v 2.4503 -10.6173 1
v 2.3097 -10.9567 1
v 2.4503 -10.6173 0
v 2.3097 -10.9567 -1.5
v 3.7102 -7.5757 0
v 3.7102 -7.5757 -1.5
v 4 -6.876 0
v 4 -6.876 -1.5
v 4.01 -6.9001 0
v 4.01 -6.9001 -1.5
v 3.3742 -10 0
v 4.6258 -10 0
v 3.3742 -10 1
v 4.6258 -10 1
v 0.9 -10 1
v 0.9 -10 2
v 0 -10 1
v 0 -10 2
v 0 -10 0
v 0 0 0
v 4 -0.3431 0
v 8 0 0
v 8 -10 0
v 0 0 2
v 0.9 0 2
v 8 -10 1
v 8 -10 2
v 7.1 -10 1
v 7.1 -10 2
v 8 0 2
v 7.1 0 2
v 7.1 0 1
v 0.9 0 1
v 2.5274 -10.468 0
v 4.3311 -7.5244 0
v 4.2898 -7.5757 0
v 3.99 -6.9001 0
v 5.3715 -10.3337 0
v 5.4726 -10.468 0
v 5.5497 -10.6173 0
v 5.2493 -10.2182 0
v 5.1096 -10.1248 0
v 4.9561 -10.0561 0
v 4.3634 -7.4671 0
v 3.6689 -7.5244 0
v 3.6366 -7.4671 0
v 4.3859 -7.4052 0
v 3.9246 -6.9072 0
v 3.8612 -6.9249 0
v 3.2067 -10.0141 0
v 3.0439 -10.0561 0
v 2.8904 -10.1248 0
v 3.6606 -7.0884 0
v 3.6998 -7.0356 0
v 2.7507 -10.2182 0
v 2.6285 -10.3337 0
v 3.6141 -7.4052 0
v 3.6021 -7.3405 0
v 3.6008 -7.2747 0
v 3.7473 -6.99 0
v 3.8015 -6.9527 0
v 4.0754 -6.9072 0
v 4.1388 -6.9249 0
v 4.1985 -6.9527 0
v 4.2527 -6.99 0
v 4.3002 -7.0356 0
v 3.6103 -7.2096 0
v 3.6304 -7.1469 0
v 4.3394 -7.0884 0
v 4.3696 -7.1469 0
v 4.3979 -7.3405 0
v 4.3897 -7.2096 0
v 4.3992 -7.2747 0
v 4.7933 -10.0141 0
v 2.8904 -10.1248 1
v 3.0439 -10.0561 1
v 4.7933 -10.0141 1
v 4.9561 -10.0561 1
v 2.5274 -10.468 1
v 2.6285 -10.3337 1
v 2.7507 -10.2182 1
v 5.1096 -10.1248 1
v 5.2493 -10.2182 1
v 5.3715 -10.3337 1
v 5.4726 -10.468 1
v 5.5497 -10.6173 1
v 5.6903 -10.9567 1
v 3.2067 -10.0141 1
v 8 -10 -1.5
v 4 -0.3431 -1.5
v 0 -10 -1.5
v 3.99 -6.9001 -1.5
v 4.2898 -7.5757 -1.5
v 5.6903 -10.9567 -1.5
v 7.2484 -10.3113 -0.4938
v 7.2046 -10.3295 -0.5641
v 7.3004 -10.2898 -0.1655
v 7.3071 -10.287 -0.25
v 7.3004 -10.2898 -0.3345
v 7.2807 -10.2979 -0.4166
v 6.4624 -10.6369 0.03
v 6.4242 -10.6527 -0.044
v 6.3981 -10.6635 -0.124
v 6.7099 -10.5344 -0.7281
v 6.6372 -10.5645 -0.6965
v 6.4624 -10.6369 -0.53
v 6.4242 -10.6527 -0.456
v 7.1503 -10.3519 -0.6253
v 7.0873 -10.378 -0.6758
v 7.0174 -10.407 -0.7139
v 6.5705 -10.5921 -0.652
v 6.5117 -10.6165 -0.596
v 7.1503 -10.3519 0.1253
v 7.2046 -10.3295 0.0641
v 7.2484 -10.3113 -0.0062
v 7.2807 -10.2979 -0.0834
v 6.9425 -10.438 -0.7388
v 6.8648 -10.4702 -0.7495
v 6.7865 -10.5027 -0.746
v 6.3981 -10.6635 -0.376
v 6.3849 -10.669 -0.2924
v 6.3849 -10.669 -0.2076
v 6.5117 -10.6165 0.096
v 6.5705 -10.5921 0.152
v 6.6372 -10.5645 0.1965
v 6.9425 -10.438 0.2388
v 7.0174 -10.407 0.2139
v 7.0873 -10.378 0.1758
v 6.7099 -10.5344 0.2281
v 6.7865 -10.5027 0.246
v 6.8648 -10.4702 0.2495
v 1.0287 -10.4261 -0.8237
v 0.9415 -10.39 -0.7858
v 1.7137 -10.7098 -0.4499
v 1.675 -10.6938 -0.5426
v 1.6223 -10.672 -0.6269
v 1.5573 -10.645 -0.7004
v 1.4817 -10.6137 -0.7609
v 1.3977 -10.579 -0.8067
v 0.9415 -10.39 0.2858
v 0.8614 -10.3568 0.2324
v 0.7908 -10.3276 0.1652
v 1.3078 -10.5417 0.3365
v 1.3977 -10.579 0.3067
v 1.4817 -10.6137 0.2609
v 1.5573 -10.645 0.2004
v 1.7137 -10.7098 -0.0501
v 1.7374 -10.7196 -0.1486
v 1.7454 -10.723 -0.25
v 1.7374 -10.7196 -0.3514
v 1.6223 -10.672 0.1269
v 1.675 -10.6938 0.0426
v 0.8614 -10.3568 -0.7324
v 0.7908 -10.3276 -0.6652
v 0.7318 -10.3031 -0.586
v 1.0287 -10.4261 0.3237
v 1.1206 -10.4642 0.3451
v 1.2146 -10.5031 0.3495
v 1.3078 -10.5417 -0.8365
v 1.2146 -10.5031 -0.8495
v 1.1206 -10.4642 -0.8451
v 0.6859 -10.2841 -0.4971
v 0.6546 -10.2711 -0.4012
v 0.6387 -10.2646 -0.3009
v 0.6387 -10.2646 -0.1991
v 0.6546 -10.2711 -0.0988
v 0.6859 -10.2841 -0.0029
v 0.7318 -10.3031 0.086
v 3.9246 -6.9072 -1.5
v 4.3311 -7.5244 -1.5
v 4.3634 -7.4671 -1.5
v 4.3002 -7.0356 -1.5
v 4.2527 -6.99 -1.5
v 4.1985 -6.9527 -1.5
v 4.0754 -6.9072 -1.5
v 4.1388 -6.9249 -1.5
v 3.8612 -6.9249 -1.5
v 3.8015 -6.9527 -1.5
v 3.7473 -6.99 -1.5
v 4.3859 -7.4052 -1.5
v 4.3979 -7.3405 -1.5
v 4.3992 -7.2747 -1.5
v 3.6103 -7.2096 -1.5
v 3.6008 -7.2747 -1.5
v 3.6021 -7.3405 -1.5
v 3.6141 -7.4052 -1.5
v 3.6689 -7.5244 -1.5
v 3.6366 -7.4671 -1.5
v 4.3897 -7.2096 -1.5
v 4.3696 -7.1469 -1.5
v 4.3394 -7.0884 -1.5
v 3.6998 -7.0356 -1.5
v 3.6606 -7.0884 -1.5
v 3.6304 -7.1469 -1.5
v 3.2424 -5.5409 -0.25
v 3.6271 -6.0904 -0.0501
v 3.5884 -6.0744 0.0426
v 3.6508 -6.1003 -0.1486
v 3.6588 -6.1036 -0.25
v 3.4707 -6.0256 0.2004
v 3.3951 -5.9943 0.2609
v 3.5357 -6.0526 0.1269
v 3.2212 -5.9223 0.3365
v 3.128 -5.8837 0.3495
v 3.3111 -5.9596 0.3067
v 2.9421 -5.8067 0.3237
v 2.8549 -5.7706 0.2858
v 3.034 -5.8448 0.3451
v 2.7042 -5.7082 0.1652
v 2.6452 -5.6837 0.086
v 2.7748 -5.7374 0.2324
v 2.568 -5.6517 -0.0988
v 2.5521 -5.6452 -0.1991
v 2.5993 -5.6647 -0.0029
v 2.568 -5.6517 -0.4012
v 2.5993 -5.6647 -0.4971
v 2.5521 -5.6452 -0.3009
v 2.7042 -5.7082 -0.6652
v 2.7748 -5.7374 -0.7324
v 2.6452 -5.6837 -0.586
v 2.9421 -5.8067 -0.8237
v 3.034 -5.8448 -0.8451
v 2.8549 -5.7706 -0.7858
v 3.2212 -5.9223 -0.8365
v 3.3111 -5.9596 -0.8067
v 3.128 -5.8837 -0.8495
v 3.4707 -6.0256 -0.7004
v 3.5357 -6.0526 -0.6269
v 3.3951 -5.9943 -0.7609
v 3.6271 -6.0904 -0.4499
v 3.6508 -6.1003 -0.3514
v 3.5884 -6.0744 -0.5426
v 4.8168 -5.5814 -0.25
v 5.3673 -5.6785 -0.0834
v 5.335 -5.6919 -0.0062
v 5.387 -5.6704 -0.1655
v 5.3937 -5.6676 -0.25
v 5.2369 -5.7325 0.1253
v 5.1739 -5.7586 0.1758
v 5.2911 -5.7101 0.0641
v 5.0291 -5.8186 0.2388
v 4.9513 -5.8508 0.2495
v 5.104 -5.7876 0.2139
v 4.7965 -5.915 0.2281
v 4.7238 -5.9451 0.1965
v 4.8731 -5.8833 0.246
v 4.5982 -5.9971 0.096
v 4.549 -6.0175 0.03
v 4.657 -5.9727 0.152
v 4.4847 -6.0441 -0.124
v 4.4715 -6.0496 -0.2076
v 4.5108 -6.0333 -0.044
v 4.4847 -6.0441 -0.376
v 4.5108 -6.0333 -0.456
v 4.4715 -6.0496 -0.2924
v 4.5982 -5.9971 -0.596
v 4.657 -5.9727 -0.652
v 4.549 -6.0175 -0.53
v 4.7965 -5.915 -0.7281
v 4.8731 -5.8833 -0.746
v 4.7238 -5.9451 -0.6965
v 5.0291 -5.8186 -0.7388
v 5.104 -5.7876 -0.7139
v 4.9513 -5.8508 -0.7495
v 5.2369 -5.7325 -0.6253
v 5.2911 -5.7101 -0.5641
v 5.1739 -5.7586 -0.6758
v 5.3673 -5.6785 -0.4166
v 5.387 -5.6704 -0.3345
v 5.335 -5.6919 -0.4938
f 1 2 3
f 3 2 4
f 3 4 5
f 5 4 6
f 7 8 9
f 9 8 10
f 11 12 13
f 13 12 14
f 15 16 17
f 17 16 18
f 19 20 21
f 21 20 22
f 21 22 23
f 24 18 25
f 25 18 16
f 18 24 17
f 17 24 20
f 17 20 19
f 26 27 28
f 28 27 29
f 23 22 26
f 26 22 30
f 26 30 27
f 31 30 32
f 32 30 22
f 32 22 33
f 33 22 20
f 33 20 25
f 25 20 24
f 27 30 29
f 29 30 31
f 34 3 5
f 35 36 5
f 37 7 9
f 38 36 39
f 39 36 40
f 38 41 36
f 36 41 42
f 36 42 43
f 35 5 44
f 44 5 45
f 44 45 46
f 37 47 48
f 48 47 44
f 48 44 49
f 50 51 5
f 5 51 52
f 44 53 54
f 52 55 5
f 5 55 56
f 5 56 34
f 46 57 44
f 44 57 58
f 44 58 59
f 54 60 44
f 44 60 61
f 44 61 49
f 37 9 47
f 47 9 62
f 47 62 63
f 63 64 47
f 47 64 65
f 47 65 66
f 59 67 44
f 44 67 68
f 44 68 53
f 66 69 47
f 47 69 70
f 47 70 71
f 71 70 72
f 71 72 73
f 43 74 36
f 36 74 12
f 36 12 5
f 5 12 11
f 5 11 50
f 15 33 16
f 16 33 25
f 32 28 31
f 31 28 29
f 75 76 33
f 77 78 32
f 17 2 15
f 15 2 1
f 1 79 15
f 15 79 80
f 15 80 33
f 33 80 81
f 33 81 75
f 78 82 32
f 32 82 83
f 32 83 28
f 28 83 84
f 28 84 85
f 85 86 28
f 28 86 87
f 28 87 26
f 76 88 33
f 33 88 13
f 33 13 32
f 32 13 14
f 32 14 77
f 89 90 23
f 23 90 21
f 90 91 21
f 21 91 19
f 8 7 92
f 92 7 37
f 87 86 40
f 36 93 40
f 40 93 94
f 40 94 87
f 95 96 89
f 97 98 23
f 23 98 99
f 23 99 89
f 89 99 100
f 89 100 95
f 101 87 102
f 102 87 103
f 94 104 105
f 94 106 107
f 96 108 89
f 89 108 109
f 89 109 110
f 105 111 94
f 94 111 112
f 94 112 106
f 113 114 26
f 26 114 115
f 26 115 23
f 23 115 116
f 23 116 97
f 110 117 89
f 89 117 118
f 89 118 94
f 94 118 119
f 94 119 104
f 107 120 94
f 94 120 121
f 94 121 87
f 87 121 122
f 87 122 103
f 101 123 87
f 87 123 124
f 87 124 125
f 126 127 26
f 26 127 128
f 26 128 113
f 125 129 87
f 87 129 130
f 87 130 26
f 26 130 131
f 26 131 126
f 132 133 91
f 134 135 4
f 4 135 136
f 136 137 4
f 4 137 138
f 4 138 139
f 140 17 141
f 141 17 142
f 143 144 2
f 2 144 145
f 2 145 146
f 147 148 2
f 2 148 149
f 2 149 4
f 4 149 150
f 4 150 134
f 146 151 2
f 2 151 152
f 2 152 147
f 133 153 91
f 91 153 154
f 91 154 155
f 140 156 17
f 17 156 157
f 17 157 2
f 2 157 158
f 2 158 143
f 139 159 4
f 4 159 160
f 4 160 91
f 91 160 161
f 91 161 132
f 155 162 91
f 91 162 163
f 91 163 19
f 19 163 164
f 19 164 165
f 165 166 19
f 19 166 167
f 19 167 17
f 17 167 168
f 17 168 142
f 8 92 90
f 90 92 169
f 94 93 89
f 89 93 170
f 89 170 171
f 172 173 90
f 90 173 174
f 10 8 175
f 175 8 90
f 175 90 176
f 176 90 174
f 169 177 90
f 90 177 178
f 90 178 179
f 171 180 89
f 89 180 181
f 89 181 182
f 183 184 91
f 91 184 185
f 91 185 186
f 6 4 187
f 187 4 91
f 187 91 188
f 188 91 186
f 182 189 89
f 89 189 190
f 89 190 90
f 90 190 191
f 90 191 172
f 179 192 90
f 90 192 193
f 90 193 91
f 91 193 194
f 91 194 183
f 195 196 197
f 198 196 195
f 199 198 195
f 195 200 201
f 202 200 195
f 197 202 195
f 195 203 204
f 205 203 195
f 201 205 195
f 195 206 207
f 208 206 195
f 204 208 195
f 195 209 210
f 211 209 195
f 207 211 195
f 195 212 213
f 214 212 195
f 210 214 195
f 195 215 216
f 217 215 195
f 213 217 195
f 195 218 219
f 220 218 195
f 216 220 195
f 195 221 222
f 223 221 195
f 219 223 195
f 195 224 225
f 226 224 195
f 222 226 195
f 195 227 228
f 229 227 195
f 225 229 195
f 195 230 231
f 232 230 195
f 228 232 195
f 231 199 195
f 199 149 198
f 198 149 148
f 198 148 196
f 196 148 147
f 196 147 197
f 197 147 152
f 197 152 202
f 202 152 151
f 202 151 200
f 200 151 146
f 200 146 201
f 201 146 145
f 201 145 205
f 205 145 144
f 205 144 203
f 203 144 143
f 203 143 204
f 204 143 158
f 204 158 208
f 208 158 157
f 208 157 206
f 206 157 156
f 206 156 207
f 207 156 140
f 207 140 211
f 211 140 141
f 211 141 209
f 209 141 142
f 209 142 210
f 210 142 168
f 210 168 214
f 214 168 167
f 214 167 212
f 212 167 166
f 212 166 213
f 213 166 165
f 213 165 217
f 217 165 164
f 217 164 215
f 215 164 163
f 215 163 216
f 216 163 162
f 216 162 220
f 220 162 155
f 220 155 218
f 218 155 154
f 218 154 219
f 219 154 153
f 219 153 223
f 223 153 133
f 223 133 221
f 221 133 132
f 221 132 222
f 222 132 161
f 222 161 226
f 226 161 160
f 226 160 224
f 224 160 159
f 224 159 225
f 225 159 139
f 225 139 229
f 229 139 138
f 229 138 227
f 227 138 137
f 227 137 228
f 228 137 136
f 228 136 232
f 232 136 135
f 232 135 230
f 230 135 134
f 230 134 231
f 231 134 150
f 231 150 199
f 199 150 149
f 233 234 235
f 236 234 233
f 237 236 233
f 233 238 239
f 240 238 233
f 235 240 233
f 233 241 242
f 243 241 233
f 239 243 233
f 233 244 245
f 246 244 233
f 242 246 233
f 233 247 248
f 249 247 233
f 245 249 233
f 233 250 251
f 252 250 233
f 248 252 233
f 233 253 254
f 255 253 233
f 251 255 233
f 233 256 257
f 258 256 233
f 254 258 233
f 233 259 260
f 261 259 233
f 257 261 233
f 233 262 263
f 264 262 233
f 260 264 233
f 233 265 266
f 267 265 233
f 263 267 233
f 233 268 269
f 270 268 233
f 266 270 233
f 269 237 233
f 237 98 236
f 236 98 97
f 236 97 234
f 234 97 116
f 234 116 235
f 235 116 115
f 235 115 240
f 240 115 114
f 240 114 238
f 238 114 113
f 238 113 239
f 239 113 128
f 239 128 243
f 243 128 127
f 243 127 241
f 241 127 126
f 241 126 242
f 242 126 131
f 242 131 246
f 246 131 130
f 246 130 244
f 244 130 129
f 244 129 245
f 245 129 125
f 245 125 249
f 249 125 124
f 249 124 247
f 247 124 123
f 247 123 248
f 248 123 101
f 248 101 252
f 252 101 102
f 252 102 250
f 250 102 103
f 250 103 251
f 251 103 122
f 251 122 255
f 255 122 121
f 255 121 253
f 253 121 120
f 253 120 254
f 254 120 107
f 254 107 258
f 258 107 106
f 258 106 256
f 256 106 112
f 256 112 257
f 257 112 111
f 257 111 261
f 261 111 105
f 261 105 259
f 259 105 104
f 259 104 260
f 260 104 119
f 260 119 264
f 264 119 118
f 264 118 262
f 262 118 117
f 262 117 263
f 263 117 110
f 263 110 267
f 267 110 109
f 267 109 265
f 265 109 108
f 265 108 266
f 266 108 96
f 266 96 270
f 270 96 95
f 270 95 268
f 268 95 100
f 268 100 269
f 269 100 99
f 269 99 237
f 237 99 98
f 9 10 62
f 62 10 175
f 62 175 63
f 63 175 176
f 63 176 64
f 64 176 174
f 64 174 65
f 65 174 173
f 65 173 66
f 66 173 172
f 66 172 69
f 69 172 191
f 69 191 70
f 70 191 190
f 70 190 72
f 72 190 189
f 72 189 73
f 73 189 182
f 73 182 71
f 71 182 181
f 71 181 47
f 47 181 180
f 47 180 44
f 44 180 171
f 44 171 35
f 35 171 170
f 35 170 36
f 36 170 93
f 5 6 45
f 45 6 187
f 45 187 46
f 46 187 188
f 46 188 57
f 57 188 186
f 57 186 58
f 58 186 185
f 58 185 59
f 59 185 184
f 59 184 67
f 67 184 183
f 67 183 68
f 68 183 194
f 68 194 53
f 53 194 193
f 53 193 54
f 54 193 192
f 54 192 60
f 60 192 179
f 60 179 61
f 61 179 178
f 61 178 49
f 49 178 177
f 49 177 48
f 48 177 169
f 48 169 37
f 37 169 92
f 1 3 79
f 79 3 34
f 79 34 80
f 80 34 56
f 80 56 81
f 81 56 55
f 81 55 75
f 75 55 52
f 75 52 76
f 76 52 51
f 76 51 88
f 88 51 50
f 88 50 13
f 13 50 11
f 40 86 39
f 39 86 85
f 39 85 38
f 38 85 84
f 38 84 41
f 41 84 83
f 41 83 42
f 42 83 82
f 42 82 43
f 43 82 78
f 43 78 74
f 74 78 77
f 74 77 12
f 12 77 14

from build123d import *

# Parameters (mm, degrees)
SKETCH1_W                = 8
SKETCH1_H                = 10
BOSS_EXTRUDE1_DEPTH      = 2
SKETCH2_W                = 6.2
SKETCH2_H                = 10
CUT_EXTRUDE1_DEPTH       = 1
BOSS_EXTRUDE2_DEPTH      = 1.5
BOSS_EXTRUDE2_DEPTH_BACK = 1
M1_CLEARANCE_HOLE2_D     = 1.2
M1_CLEARANCE_HOLE2_DEPTH = 5
M1_CLEARANCE_HOLE2_TIP   = 0.360516371
M1_CLEARANCE_HOLE1_D     = 1
M1_CLEARANCE_HOLE1_DEPTH = 5
M1_CLEARANCE_HOLE1_TIP   = 0.30043031
SKETCH8_R                = 0.4
CUT_EXTRUDE2_DEPTH       = 1.5
FILLET2_R                = 1


with BuildPart() as part:
    # Sketch1 → Boss-Extrude1 (new body)
    with BuildSketch(Plane.XY):
        with Locations((4, -5)):
            Rectangle(SKETCH1_W, SKETCH1_H)
    extrude(amount=BOSS_EXTRUDE1_DEPTH)

    # Sketch2 → Cut-Extrude1 (cut)
    with BuildSketch(Plane.XY.offset(2)):
        with Locations((4, -5)):
            Rectangle(SKETCH2_W, SKETCH2_H)
    extrude(amount=-CUT_EXTRUDE1_DEPTH, mode=Mode.SUBTRACT)

    # Sketch3 → Boss-Extrude2 (add, two sides)
    with BuildSketch(Plane(origin=(0, 0, 0), x_dir=(-1, 0, 0), z_dir=(0, 0, -1))) as boss_extrude2_sk:
        Polygon((-8, -10), (-4, -0.343145751), (0, -10), (-2.309698831, -10.956708581), (-4, -6.875960575), (-5.690301169, -10.956708581), align=None)
    extrude(amount=BOSS_EXTRUDE2_DEPTH)
    extrude(boss_extrude2_sk.sketch, amount=-BOSS_EXTRUDE2_DEPTH_BACK)

    # M1 Clearance Hole2
    with Locations(Plane(origin=(-3.535533906, -8.535533906, 0), x_dir=(-0.923879533, 0.382683432, 0), z_dir=(-0.382683432, -0.923879533, 0))):
        with Locations((-5.115994416, 0.25)):
            Hole(M1_CLEARANCE_HOLE2_D / 2, depth=M1_CLEARANCE_HOLE2_DEPTH)
            with Locations((0, 0, -(M1_CLEARANCE_HOLE2_DEPTH + M1_CLEARANCE_HOLE2_TIP / 2))):  # 118° drill point
                Cone(0, M1_CLEARANCE_HOLE2_D / 2, M1_CLEARANCE_HOLE2_TIP, mode=Mode.SUBTRACT)

    # M1 Clearance Hole1
    with Locations(Plane(origin=(4.707106781, -11.363961031, 0), x_dir=(-0.923879533, -0.382683432, 0), z_dir=(0.382683432, -0.923879533, 0))):
        with Locations((-2.314201936, 0.25)):
            Hole(M1_CLEARANCE_HOLE1_D / 2, depth=M1_CLEARANCE_HOLE1_DEPTH)
            with Locations((0, 0, -(M1_CLEARANCE_HOLE1_DEPTH + M1_CLEARANCE_HOLE1_TIP / 2))):  # 118° drill point
                Cone(0, M1_CLEARANCE_HOLE1_D / 2, M1_CLEARANCE_HOLE1_TIP, mode=Mode.SUBTRACT)

    # Sketch8 → Cut-Extrude2 (cut)
    with BuildSketch(Plane(origin=(0, 0, -1.5), x_dir=(-1, 0, 0), z_dir=(0, 0, -1))):
        with Locations((-4, -7.3)):
            Circle(SKETCH8_R)
    extrude(amount=-CUT_EXTRUDE2_DEPTH, mode=Mode.SUBTRACT)

    # Fillet2
    fillet2_edges = [part.edges().sort_by_distance(p)[0] for p in [
        (2.705980501, -10, 0.5),
        (5.294019499, -10, 0.5),
    ]]
    fillet(fillet2_edges, radius=FILLET2_R)


solid = part.part
